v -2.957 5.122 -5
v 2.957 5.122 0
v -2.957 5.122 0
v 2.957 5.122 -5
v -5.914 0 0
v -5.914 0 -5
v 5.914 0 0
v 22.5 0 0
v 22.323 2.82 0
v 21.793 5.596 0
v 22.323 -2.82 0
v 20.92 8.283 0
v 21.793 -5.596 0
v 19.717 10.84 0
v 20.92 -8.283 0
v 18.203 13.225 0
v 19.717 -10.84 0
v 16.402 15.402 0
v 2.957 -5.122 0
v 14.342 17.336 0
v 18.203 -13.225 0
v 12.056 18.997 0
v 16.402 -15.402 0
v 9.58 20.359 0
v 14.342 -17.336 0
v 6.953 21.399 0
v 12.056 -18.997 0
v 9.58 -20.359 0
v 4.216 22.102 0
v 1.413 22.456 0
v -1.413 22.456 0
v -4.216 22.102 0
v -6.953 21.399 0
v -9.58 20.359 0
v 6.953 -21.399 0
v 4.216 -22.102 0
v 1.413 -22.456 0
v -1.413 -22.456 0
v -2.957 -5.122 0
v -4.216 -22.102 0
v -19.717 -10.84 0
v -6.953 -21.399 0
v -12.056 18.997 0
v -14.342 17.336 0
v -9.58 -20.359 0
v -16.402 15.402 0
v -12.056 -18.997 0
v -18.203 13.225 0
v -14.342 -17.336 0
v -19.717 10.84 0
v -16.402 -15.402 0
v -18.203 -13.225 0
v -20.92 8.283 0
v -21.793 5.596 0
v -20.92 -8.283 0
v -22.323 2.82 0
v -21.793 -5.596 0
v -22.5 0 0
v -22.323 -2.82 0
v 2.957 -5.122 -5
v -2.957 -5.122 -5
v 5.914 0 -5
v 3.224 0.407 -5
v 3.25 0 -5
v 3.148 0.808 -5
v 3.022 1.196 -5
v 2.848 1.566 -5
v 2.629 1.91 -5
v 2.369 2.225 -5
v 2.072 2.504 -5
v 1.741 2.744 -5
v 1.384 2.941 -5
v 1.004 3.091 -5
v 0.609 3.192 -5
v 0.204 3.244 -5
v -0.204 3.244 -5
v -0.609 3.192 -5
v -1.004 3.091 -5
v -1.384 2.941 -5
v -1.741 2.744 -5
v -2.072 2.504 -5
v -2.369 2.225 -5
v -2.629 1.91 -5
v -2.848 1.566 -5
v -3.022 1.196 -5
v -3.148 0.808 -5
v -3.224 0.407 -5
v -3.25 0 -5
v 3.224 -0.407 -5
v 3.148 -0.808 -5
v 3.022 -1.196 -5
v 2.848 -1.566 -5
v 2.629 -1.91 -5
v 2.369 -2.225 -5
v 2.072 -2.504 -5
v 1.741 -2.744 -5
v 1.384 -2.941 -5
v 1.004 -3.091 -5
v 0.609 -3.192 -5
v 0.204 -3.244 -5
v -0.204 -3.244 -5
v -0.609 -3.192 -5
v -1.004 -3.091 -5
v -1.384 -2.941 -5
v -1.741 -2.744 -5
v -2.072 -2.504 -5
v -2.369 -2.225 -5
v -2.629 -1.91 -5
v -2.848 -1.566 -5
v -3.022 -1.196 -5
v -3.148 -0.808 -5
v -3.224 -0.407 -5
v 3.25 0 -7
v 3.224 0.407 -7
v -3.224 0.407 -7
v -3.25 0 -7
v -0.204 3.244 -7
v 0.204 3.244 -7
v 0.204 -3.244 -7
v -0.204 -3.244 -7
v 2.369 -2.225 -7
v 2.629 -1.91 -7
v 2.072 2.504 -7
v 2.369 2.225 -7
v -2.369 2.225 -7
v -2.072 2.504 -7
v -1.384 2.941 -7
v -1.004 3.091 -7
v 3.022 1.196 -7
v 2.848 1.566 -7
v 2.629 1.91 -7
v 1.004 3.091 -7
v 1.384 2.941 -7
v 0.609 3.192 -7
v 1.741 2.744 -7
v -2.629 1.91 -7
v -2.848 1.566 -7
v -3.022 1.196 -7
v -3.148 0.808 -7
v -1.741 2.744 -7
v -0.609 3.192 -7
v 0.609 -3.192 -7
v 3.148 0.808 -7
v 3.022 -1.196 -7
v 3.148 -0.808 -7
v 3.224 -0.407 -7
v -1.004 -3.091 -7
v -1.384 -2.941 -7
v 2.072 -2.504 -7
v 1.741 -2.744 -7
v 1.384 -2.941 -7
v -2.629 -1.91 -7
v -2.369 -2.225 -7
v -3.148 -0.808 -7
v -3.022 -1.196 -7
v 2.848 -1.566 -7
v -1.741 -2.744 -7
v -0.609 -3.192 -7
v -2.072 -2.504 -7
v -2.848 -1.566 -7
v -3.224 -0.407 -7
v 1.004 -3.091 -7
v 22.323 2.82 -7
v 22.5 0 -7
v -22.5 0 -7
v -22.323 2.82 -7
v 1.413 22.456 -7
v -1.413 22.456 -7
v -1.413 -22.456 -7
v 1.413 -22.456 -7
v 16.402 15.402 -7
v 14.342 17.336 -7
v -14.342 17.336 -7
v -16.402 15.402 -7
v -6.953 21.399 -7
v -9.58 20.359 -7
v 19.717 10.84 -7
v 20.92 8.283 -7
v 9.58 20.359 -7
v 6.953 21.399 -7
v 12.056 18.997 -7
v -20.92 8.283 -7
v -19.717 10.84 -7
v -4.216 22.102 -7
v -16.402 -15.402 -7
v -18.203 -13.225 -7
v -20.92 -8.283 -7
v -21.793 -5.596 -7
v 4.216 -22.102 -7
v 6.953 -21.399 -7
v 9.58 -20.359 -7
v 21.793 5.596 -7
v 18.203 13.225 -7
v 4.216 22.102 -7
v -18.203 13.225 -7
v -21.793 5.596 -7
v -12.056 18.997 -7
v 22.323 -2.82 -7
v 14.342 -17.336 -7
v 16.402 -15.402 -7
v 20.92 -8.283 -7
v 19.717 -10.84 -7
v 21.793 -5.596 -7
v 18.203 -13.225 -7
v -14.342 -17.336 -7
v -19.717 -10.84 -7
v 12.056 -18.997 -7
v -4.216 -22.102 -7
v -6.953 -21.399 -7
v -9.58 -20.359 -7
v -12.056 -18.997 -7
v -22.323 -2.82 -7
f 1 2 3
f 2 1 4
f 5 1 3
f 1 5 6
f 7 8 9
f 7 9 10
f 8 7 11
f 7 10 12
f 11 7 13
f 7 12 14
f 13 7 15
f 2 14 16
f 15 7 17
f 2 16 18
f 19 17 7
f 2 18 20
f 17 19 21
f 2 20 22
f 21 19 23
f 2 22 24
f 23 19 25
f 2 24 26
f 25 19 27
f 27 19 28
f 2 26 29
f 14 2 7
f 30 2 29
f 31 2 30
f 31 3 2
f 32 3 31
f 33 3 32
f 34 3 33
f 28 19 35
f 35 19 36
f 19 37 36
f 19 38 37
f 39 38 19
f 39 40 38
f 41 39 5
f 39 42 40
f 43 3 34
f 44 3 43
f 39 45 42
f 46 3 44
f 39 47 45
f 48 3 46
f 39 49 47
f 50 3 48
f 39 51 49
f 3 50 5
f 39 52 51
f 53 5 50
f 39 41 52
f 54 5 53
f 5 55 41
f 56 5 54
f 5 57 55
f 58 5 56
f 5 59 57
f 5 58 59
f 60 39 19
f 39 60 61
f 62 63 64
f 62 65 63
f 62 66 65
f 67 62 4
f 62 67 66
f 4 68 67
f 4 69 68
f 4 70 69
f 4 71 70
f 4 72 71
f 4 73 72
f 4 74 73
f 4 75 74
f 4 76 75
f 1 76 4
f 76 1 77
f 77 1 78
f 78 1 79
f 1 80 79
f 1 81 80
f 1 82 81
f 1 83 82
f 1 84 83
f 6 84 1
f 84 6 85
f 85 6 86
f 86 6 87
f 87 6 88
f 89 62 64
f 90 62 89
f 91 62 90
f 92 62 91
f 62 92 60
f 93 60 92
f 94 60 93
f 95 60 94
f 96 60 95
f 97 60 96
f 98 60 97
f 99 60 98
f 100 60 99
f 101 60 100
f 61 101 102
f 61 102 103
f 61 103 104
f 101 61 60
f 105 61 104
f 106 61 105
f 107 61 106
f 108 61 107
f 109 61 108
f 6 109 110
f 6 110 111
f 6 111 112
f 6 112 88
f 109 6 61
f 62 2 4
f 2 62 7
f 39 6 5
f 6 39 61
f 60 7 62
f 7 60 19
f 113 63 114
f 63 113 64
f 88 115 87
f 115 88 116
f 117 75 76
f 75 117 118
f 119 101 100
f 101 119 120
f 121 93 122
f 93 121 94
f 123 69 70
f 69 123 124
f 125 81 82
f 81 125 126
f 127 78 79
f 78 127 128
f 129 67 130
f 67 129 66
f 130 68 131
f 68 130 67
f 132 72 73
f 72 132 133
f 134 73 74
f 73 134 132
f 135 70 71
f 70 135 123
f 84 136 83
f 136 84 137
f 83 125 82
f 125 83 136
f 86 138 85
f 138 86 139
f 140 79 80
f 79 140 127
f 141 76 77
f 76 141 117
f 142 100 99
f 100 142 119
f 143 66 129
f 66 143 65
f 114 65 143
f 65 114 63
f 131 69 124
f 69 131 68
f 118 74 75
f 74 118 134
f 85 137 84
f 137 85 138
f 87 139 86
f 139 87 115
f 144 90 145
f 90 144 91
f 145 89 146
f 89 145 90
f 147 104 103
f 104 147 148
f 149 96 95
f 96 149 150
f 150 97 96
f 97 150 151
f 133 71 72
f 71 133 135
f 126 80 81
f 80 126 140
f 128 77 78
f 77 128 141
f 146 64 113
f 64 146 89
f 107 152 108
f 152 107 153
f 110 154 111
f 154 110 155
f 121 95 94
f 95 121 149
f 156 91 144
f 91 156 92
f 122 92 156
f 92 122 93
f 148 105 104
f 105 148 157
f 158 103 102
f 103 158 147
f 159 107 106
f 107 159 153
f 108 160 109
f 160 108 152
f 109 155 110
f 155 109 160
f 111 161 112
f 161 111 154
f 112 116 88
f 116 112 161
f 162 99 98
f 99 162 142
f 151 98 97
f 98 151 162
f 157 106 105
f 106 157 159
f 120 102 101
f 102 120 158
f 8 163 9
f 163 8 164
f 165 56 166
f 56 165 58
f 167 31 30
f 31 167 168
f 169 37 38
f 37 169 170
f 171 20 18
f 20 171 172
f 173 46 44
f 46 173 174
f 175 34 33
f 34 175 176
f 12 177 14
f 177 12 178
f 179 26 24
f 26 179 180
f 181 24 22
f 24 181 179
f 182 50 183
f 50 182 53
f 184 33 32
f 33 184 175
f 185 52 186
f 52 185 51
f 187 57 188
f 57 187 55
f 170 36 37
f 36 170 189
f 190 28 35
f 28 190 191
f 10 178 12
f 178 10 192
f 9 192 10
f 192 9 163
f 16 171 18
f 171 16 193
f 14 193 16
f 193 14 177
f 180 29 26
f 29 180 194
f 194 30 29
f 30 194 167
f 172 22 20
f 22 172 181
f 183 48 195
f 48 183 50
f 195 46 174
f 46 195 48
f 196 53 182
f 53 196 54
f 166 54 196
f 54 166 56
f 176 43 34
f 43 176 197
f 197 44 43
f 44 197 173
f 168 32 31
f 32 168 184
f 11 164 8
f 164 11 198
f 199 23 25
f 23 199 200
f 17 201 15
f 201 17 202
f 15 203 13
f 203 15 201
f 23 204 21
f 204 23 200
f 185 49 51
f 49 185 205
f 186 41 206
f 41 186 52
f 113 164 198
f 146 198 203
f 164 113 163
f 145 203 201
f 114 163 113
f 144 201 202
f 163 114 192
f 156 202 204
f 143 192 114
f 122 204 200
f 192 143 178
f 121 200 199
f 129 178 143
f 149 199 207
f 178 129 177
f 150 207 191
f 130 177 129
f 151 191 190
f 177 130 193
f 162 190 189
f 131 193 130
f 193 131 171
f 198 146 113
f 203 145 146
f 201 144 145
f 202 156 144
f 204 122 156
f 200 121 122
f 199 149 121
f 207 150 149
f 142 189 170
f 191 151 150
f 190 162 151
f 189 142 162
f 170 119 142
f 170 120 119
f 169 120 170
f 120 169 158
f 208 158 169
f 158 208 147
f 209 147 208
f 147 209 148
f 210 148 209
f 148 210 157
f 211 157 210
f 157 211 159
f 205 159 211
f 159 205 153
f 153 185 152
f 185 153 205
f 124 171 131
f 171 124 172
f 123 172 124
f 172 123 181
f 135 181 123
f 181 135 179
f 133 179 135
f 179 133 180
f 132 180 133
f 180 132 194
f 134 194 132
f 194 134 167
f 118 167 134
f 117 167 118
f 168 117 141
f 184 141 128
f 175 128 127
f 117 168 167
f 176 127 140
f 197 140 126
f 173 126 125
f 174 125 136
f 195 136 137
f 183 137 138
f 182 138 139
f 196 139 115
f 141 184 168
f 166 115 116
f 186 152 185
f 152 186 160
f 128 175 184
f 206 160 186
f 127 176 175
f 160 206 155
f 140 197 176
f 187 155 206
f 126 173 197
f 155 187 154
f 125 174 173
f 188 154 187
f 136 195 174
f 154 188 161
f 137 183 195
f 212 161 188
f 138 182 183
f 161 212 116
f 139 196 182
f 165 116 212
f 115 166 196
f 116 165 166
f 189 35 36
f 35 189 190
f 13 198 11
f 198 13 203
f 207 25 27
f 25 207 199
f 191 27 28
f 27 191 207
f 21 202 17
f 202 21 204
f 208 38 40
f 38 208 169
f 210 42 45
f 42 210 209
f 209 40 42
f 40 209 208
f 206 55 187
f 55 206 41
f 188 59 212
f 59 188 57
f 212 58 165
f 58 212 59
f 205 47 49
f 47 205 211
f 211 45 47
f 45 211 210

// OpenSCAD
$fn = 50;


difference() {
	union() {
		translate(v = [0, 0, -7.0000000000]) {
			cylinder(h = 7.0000000000, r = 22.5000000000);
		}
	}
	union() {
		translate(v = [0, 0, 0]) {
			rotate(a = [0, 0, 0]) {
				difference() {
					union() {
						translate(v = [0, 0, -5]) {
							linear_extrude(height = 5) {
								polygon(points = [[5.9142500000, 0.0000000000], [2.9571250000, 5.1218907443], [-2.9571250000, 5.1218907443], [-5.9142500000, 0.0000000000], [-2.9571250000, -5.1218907443], [2.9571250000, -5.1218907443]]);
							}
						}
					}
					union();
				}
			}
		}
		#translate(v = [0, 0, -100.0000000000]) {
			cylinder(h = 200, r = 3.2500000000);
		}
	}
}
